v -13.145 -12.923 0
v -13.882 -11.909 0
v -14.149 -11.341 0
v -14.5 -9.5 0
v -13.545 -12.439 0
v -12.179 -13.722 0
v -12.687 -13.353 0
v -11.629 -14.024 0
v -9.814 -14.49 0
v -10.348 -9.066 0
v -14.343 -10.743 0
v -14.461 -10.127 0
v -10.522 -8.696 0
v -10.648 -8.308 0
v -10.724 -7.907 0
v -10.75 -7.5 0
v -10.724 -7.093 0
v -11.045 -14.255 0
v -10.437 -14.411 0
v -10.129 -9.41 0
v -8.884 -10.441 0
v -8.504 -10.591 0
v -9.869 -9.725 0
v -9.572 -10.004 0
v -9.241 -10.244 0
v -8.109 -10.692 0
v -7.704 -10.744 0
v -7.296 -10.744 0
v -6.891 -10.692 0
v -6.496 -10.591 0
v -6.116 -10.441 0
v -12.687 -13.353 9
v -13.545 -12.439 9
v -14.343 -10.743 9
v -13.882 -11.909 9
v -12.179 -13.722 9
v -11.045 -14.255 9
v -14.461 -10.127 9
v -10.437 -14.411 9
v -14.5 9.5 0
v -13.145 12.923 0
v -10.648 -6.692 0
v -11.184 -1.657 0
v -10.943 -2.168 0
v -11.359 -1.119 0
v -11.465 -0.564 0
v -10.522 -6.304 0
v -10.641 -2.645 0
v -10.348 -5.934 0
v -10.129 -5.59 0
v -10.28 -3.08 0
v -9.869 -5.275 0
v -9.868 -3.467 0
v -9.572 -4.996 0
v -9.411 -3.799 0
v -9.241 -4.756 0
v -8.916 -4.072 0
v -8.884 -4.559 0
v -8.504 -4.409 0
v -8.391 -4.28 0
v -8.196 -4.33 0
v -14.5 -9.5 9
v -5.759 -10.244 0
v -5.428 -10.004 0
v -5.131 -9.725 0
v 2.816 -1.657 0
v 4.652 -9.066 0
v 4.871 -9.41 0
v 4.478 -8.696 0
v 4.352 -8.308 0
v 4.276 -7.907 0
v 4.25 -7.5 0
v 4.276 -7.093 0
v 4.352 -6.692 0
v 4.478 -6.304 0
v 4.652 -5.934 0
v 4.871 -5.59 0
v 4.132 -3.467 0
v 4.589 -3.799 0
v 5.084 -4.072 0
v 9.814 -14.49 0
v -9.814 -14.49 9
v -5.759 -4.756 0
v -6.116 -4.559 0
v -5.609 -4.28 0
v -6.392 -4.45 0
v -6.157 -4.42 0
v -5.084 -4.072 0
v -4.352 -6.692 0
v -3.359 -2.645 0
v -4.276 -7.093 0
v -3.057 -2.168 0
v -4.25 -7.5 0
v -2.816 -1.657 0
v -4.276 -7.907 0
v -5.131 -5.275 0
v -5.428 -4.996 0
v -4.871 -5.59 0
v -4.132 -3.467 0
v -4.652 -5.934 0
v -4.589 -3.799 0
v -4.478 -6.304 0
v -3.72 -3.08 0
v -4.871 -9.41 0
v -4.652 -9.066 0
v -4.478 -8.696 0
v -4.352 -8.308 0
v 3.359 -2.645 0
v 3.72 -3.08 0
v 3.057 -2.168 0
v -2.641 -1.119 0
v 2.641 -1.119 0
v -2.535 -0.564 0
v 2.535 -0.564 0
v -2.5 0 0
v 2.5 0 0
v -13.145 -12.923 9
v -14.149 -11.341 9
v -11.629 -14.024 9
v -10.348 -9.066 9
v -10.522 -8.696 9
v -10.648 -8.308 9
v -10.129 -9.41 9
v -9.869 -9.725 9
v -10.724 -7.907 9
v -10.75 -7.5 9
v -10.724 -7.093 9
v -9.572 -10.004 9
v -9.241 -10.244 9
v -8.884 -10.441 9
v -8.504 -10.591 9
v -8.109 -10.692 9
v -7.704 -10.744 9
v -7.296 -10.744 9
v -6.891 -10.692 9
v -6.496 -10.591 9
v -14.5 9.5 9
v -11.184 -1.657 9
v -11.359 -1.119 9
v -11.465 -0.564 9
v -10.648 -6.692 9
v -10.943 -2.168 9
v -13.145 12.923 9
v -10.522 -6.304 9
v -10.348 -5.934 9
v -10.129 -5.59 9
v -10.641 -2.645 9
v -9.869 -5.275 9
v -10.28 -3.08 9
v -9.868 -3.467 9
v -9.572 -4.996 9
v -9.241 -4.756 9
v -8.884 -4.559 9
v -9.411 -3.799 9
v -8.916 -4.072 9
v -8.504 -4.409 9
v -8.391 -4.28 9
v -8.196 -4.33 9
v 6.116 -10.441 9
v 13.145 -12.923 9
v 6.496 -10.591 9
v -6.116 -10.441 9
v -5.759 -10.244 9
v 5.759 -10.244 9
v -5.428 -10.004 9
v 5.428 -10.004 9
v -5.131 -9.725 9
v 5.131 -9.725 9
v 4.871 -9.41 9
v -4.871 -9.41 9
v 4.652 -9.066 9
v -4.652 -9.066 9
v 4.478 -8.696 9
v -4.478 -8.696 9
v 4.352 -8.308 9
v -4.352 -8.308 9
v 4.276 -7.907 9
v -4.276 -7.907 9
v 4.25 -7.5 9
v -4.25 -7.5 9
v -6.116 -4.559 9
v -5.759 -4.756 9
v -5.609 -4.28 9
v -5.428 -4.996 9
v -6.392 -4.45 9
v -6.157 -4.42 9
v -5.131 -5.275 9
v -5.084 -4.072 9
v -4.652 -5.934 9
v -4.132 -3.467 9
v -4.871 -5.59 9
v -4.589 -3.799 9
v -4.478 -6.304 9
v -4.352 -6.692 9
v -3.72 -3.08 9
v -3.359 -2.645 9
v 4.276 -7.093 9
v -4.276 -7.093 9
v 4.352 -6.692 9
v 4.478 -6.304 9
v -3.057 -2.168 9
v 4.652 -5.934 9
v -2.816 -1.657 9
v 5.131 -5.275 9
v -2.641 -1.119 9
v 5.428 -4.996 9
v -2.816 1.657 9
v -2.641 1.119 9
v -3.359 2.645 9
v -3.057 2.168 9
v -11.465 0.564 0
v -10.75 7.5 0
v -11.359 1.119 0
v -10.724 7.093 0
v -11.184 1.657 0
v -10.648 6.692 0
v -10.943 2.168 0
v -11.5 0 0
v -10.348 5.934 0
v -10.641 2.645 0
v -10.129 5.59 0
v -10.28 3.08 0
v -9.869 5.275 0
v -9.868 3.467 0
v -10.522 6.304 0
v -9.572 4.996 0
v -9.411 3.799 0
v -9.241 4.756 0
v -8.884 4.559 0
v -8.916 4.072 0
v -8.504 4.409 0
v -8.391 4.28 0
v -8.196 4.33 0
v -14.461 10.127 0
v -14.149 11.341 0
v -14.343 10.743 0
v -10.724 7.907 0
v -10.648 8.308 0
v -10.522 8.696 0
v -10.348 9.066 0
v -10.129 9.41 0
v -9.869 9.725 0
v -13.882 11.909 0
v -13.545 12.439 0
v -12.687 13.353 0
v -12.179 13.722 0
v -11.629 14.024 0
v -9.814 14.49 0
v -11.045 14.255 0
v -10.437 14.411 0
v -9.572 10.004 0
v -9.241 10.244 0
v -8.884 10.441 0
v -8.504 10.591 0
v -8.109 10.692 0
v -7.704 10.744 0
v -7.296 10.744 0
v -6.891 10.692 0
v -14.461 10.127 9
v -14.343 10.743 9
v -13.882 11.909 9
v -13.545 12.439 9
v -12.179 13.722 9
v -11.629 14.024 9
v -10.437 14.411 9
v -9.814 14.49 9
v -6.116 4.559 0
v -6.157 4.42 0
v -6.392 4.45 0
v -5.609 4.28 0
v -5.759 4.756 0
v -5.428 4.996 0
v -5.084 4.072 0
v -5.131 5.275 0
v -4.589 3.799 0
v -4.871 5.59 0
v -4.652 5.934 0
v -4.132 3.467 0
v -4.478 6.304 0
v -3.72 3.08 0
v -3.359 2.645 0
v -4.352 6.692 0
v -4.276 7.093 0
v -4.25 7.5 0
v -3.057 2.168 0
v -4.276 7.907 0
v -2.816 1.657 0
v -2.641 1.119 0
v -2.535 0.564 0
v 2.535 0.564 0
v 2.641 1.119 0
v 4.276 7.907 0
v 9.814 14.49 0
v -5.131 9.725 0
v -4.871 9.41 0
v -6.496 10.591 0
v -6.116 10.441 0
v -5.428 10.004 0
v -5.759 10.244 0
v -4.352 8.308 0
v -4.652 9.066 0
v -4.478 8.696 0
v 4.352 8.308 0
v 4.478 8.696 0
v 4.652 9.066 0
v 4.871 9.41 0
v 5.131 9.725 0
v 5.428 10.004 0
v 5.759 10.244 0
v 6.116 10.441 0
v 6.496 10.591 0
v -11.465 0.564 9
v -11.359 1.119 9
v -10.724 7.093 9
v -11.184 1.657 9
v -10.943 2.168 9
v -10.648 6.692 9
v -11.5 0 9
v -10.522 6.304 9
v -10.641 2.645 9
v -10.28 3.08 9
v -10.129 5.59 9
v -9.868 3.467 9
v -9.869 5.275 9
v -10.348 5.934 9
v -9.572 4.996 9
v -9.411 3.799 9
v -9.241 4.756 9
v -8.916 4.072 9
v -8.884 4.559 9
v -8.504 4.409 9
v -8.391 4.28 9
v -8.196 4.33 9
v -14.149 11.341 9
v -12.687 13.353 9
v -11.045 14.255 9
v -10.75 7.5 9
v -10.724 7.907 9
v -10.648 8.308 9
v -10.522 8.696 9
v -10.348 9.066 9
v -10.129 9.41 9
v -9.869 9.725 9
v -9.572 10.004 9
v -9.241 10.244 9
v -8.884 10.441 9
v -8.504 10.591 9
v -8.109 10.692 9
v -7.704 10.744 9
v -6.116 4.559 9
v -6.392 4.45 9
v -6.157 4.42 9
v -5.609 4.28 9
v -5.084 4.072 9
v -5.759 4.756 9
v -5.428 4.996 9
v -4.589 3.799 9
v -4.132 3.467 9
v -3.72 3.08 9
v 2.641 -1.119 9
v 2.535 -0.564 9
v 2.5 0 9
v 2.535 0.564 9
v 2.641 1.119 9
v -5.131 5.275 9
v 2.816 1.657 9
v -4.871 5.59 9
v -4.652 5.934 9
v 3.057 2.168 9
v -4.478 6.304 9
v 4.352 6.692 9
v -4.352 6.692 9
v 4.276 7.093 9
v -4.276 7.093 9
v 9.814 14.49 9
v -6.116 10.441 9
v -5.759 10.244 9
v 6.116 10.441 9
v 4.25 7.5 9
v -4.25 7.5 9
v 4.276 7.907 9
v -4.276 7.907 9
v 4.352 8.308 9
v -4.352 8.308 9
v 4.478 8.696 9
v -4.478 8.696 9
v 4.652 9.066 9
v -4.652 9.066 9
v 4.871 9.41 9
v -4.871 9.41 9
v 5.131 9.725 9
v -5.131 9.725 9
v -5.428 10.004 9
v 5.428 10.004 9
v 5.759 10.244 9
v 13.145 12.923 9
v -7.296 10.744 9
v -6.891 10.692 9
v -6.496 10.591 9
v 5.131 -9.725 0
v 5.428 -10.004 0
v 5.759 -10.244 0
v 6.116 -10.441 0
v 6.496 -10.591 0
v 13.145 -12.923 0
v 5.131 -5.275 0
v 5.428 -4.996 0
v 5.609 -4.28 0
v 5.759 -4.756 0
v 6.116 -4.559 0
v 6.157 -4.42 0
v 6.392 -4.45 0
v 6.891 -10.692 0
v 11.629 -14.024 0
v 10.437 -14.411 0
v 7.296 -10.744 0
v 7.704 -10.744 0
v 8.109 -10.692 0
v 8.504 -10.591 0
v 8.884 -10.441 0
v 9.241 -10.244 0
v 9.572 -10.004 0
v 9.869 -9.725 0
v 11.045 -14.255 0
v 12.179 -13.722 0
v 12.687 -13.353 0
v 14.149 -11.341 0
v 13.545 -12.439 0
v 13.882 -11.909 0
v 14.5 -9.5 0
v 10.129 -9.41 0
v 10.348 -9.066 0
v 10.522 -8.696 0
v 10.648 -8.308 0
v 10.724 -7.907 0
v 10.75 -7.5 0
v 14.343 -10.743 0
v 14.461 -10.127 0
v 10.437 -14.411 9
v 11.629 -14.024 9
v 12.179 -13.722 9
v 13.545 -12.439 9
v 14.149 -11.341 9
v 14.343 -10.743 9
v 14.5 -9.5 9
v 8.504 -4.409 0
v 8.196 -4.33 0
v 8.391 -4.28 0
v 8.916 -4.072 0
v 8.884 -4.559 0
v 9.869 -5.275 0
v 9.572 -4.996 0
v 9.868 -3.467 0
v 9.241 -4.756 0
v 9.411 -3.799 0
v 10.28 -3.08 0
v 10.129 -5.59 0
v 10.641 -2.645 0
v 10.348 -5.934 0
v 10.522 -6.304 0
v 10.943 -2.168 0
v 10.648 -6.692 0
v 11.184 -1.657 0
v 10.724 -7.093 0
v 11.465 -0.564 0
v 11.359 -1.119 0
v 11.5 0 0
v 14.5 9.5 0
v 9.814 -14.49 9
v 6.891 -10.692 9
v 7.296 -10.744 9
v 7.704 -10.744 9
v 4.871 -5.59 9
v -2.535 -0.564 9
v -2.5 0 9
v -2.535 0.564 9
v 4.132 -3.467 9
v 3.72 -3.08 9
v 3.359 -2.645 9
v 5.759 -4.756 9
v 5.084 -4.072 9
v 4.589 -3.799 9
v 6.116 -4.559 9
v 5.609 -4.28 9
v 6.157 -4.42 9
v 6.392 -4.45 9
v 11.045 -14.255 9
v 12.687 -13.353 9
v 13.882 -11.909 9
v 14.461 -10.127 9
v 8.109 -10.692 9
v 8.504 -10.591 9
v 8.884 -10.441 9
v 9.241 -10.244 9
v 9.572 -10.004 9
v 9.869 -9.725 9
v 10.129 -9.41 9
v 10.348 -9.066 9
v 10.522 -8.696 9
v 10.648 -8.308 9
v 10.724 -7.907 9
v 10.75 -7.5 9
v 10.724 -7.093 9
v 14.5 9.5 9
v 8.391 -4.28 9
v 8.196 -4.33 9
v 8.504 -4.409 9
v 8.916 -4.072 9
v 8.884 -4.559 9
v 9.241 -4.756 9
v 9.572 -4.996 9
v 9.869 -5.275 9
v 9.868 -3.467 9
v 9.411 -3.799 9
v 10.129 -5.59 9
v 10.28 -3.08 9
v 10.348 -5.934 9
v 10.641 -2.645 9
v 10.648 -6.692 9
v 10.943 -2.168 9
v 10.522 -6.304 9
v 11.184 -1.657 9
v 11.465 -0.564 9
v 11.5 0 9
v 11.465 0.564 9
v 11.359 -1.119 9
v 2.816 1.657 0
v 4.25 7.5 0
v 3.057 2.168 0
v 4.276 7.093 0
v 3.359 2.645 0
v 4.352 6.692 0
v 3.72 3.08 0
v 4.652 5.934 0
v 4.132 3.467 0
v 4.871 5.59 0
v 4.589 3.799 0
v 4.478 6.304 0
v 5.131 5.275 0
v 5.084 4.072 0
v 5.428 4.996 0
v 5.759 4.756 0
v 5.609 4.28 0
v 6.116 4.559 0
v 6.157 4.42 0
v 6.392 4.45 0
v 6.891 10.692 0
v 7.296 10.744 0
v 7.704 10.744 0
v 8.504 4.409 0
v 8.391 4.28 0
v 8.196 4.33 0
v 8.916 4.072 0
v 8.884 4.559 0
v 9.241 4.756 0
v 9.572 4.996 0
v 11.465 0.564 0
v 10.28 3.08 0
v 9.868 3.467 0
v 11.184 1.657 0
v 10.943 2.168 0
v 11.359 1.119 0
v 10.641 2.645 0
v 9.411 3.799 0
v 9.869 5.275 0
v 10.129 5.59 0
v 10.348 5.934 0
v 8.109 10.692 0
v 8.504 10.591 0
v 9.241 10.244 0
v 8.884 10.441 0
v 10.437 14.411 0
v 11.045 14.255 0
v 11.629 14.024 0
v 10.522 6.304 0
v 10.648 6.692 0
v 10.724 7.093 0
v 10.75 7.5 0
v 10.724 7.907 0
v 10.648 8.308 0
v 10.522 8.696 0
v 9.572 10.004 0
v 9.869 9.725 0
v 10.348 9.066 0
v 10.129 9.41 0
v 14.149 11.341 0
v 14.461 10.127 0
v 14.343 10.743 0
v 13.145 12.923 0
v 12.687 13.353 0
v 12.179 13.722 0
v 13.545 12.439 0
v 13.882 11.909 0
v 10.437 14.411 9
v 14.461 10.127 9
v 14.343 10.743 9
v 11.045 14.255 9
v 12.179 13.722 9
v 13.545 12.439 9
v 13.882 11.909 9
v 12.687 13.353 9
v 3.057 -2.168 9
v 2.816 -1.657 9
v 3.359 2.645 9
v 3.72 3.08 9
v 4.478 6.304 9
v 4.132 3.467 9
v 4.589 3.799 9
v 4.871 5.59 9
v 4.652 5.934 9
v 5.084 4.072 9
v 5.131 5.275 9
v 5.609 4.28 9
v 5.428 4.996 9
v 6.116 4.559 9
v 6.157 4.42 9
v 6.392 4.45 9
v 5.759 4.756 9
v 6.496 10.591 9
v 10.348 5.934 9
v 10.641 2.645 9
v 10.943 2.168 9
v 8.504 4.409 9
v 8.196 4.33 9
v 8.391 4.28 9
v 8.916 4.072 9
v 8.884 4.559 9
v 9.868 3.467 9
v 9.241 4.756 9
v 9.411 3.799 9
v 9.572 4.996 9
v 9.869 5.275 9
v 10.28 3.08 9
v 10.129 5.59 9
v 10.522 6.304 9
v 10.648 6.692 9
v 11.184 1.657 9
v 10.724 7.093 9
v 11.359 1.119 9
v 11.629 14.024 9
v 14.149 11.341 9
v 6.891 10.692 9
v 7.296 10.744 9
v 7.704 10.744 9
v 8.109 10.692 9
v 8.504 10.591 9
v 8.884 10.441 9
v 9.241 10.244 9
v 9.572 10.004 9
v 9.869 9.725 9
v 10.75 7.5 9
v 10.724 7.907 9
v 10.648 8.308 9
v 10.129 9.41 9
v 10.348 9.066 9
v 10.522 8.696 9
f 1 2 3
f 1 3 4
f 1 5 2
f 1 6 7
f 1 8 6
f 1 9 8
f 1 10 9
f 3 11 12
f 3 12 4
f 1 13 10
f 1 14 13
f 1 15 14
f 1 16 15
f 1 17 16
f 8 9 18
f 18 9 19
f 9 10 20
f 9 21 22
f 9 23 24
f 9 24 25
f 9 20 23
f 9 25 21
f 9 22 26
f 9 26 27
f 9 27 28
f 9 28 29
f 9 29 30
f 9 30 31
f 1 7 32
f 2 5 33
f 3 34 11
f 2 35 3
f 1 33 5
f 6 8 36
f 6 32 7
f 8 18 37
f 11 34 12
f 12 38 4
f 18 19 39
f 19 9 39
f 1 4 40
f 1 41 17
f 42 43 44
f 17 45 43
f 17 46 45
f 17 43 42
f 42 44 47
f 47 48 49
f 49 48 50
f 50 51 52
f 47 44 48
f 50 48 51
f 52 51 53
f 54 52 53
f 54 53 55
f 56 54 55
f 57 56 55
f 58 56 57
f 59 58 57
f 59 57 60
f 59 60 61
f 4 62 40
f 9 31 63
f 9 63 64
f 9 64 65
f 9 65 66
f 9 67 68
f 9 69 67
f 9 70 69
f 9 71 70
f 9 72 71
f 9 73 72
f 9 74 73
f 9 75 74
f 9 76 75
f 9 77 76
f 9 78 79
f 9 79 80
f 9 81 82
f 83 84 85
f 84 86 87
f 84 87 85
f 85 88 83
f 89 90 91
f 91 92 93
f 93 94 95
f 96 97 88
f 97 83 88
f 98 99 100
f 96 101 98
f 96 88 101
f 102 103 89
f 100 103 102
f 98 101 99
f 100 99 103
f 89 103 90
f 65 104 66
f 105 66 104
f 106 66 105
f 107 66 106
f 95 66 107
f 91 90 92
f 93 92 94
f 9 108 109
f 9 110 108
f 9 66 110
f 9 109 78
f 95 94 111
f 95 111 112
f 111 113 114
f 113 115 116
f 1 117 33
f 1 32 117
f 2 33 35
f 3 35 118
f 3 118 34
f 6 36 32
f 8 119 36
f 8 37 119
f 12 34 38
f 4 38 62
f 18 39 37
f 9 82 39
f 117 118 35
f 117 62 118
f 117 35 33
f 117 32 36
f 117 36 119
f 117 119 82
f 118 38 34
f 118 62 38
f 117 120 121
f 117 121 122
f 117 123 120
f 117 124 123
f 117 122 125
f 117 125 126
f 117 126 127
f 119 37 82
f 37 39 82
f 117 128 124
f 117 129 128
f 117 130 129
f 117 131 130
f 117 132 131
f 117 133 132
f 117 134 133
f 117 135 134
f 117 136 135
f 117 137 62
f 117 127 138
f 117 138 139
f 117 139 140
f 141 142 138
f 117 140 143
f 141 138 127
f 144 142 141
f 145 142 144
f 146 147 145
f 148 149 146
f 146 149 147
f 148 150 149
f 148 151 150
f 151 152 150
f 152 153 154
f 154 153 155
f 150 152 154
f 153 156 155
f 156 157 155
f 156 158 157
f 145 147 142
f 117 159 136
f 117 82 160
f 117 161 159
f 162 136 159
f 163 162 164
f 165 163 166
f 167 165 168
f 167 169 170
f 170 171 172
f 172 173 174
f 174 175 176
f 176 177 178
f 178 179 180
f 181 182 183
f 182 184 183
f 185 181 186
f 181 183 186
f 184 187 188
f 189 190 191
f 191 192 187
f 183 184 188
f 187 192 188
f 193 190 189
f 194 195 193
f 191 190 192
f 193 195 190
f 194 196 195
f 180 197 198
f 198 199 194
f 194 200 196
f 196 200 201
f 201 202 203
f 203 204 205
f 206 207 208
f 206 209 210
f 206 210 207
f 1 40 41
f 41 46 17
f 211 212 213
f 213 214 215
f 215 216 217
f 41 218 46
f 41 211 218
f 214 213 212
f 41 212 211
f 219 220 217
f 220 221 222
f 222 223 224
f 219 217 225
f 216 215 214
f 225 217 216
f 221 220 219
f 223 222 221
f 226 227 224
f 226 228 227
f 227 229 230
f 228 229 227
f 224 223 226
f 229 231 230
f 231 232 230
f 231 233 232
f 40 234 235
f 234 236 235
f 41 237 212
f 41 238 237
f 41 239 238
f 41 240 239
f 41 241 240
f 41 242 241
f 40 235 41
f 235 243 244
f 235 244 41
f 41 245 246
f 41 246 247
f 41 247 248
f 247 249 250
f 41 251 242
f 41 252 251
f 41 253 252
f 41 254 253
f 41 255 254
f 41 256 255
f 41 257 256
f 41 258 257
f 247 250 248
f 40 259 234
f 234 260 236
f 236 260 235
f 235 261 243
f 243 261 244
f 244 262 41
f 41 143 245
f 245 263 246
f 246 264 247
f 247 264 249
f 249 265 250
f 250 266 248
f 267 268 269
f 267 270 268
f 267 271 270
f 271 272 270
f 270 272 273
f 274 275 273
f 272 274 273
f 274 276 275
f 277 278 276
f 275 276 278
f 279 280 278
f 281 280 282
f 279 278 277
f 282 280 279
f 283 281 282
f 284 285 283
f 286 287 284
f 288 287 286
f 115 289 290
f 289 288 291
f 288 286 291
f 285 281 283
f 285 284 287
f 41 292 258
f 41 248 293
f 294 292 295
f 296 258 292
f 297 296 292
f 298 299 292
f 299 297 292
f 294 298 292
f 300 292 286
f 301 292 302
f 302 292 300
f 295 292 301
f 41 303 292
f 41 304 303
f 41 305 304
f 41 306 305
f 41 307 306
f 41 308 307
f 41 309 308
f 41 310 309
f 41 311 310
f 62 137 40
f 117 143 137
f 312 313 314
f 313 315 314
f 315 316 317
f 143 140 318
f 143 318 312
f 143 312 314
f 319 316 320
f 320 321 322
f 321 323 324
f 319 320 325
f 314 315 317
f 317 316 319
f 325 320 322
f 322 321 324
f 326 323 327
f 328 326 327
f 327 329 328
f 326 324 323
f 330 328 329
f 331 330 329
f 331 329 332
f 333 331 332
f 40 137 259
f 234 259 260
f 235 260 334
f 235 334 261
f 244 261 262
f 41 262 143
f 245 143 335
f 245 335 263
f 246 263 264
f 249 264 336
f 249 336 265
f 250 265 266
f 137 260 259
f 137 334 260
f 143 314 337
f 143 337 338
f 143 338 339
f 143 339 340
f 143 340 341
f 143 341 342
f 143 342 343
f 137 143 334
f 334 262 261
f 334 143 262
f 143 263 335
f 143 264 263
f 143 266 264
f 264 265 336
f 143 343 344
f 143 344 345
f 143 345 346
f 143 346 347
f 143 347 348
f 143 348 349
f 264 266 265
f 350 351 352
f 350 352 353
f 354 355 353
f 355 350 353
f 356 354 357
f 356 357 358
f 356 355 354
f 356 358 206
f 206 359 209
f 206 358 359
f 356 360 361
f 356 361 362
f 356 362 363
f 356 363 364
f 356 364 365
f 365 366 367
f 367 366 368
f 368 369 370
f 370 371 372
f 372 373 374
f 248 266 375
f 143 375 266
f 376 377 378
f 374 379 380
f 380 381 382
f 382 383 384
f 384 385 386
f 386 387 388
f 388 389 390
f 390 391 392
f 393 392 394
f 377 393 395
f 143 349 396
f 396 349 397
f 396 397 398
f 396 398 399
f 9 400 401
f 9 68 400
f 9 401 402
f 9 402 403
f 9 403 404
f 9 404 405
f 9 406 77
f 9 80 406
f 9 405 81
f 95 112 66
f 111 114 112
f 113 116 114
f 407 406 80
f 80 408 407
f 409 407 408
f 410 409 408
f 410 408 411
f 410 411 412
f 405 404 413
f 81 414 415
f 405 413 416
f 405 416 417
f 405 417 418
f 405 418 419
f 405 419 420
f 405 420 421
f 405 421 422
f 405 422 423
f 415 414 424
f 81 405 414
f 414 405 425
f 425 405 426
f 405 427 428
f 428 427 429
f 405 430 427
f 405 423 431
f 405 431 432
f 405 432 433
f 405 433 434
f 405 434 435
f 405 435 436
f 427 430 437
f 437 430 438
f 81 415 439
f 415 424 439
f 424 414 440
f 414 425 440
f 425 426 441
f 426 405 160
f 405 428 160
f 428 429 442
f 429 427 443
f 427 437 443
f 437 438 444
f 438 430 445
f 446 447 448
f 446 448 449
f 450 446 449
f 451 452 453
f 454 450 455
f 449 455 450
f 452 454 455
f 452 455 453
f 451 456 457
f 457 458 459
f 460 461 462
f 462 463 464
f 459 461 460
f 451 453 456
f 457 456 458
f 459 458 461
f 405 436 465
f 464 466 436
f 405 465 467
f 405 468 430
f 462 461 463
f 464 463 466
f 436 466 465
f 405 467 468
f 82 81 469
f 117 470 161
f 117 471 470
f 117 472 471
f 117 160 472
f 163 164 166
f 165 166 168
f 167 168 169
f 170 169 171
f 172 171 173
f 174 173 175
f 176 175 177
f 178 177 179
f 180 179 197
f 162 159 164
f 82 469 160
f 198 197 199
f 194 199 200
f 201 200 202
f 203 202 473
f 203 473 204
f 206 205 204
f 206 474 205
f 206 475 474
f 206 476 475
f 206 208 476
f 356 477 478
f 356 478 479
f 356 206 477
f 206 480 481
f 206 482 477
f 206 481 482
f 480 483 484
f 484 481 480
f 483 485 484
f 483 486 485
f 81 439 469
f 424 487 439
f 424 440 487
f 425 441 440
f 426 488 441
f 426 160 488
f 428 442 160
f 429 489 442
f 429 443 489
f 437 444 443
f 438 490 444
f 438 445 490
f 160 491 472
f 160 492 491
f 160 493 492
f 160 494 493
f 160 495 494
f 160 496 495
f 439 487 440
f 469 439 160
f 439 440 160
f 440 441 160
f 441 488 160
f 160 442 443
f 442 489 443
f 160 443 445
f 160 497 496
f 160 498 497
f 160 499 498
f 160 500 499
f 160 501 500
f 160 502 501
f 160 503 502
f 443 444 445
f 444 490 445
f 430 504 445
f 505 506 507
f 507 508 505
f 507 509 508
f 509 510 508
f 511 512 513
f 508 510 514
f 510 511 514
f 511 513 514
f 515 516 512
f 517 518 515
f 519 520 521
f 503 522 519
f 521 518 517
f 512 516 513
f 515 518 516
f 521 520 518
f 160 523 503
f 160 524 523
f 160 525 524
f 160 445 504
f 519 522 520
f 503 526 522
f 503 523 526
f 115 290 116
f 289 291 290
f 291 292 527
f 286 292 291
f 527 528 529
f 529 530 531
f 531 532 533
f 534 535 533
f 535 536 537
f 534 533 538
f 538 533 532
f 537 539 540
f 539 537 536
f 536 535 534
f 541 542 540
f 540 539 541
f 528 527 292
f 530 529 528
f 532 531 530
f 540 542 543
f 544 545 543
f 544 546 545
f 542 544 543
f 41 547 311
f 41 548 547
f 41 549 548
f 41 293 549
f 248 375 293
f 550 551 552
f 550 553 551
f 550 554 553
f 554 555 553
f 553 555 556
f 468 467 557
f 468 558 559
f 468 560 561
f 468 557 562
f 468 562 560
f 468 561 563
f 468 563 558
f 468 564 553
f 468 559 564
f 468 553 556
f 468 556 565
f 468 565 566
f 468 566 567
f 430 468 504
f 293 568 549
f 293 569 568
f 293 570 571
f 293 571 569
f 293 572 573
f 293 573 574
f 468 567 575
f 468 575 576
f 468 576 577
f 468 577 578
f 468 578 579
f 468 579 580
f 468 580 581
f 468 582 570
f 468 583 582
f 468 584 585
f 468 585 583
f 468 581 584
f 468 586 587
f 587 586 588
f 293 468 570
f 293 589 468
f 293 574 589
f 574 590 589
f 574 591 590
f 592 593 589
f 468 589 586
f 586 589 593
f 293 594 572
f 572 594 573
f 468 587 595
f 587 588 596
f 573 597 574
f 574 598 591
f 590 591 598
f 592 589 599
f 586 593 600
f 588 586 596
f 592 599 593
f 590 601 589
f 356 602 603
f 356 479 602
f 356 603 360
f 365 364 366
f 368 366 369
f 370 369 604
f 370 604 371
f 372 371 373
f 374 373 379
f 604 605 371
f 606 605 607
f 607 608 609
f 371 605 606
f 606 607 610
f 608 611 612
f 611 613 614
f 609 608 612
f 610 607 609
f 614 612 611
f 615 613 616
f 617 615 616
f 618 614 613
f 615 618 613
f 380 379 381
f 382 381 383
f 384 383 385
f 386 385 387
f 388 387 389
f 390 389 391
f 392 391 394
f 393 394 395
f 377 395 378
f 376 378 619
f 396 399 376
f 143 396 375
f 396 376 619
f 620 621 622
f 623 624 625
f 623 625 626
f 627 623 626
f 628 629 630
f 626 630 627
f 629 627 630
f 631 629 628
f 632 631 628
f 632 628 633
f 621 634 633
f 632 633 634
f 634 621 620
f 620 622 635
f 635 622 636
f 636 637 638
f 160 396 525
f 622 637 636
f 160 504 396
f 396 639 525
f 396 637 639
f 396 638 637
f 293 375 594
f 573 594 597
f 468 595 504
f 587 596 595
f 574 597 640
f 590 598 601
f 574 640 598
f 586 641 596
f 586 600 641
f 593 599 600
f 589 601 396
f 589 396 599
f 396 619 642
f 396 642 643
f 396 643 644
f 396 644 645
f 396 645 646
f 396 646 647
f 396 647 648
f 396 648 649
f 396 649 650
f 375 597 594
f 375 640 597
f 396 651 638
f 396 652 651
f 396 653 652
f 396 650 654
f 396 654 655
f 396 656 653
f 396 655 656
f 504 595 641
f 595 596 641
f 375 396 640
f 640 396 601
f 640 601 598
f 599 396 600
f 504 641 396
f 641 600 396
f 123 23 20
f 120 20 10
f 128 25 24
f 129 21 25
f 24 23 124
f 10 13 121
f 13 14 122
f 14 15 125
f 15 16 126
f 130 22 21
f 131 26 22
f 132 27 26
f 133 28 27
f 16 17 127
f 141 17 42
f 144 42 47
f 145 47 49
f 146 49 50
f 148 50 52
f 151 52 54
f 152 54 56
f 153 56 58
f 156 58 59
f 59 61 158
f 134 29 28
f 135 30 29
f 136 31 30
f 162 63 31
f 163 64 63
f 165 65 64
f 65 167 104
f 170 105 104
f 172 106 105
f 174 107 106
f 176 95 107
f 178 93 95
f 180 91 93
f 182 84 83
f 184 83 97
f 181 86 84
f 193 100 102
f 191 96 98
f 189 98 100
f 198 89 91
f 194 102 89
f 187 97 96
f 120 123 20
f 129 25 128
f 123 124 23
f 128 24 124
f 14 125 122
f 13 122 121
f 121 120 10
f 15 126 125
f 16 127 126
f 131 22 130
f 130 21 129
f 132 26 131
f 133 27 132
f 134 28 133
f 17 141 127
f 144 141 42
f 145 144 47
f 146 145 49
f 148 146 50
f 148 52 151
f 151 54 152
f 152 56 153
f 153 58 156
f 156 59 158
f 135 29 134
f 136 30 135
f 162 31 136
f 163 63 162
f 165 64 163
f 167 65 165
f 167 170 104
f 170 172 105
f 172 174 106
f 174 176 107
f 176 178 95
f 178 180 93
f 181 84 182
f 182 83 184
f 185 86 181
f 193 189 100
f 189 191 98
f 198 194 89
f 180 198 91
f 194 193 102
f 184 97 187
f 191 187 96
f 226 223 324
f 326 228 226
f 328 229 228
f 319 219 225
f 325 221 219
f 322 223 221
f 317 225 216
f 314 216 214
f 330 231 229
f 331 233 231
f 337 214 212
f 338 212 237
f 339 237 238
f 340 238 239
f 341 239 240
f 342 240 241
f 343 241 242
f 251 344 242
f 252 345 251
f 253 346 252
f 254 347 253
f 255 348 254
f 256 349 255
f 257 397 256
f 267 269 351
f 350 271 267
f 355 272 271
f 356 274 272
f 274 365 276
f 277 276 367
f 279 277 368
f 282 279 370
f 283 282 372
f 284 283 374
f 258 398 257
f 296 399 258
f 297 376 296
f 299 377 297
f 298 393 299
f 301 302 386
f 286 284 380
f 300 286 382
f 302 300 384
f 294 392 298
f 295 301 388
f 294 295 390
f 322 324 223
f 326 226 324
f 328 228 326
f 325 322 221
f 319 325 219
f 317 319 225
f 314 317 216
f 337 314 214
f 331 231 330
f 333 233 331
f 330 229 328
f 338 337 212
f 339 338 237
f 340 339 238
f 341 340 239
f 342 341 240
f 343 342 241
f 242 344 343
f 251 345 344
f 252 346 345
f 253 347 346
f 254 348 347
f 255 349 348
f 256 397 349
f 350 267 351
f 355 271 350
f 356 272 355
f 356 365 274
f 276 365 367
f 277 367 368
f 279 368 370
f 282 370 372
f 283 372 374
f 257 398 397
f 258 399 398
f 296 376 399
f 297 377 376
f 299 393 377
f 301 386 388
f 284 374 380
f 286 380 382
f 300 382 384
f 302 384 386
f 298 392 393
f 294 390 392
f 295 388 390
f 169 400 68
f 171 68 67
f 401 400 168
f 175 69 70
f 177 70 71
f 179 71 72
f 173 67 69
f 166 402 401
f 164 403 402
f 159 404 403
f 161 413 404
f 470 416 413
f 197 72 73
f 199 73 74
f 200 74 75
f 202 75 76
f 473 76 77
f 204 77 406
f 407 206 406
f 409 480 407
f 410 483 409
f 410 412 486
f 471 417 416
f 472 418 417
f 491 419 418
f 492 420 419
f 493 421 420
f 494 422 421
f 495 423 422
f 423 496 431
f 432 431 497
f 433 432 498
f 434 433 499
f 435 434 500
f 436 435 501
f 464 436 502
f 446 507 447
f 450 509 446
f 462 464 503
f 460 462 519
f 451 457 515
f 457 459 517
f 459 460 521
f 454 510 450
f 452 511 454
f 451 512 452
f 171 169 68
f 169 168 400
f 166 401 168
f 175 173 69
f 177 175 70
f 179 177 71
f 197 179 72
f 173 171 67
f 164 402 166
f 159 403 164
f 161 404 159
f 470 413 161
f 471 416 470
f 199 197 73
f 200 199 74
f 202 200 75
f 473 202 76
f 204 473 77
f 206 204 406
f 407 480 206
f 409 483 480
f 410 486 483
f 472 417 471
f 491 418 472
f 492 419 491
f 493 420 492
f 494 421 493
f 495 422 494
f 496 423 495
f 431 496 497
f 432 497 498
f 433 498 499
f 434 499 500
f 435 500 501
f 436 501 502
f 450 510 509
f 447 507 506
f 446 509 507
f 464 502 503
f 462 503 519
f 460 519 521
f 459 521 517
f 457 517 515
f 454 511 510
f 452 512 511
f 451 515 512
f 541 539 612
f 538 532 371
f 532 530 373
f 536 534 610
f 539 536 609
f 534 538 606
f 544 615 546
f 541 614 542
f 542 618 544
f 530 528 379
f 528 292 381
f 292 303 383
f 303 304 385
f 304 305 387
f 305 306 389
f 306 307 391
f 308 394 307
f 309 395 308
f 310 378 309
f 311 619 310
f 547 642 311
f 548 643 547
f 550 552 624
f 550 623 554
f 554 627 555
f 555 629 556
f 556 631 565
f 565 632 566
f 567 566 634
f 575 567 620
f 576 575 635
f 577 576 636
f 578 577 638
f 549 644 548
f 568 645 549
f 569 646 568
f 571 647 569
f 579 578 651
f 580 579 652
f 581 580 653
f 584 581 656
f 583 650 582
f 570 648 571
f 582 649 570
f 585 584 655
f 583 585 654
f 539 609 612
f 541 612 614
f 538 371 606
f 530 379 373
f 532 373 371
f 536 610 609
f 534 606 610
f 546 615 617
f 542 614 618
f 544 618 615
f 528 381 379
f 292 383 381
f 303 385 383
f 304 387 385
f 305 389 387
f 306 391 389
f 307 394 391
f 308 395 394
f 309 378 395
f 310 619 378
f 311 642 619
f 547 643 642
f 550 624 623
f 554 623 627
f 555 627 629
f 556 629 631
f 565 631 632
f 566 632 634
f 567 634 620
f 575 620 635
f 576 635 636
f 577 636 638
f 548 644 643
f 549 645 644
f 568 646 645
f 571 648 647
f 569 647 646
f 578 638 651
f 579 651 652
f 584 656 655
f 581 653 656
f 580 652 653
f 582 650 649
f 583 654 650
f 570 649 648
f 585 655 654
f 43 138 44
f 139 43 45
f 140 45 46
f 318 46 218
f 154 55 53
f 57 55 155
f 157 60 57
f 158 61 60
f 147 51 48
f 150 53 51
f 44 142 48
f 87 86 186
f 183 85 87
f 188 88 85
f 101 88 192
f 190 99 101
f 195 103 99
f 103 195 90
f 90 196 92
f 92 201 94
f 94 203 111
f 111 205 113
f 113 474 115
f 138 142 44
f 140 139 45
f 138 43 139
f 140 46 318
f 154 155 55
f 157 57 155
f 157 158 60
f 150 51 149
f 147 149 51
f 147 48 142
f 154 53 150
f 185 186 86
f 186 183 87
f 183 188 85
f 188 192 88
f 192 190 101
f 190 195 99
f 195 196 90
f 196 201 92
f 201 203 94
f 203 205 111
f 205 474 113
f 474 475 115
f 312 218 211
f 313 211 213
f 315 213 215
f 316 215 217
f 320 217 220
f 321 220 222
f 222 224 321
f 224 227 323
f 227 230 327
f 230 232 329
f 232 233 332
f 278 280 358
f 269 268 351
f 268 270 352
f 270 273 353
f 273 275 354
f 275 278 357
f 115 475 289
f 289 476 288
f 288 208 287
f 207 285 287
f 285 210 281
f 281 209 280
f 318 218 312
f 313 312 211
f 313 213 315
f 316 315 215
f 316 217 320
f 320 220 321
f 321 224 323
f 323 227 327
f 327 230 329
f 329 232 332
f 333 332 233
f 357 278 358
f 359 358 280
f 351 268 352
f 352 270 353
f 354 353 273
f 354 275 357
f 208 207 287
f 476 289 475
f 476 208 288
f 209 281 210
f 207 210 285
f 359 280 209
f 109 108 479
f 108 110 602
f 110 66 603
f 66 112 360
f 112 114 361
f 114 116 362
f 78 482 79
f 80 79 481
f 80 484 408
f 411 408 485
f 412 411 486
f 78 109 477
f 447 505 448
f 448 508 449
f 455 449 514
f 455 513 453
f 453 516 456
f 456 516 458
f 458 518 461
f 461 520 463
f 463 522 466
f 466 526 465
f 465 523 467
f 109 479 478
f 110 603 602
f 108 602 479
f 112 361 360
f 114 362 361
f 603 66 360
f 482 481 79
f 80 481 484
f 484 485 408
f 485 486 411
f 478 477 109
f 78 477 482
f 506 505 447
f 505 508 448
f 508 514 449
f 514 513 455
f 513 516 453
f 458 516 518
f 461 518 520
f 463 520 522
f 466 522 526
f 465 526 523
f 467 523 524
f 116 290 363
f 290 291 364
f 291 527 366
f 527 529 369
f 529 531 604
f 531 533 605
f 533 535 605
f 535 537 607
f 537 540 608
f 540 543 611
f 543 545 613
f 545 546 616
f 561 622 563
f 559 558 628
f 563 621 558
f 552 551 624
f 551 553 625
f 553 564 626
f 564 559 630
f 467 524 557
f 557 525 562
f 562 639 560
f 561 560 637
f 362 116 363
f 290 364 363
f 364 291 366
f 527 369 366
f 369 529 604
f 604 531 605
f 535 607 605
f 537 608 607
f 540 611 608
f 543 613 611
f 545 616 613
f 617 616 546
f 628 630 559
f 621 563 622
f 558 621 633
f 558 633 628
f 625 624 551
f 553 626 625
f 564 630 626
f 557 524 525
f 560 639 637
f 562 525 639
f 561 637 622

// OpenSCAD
$fn = 50;

difference() {
	union() {
		hull() {
			translate(v = [-9.5, 9.5, 0]) {
				cylinder(h = 9, r = 5);
			}
			translate(v = [9.5, 9.5, 0]) {
				cylinder(h = 9, r = 5);
			}
			translate(v = [-9.5, -9.5, 0]) {
				cylinder(h = 9, r = 5);
			}
			translate(v = [9.5, -9.5, 0]) {
				cylinder(h = 9, r = 5);
			}
		}
	}
	union() {
		translate(v = [-7.5, -7.5, -100.0]) {
			cylinder(h = 200, r = 3.25);
		}
		translate(v = [-7.5, 7.5, -100.0]) {
			cylinder(h = 200, r = 3.25);
		}
		translate(v = [7.5, -7.5, -100.0]) {
			cylinder(h = 200, r = 3.25);
		}
		translate(v = [7.5, 7.5, -100.0]) {
			cylinder(h = 200, r = 3.25);
		}
		translate(v = [-7.5, -7.5, -100.0]) {
			cylinder(h = 200, r = 1.8);
		}
		translate(v = [-7.5, 7.5, -100.0]) {
			cylinder(h = 200, r = 1.8);
		}
		translate(v = [7.5, -7.5, -100.0]) {
			cylinder(h = 200, r = 1.8);
		}
		translate(v = [7.5, 7.5, -100.0]) {
			cylinder(h = 200, r = 1.8);
		}
		translate(v = [-7.0, 0, 0.0]) {
			cylinder(h = 9, r = 4.5);
		}
		translate(v = [7.0, 0, 0.0]) {
			cylinder(h = 9, r = 4.5);
		}
	}
}
